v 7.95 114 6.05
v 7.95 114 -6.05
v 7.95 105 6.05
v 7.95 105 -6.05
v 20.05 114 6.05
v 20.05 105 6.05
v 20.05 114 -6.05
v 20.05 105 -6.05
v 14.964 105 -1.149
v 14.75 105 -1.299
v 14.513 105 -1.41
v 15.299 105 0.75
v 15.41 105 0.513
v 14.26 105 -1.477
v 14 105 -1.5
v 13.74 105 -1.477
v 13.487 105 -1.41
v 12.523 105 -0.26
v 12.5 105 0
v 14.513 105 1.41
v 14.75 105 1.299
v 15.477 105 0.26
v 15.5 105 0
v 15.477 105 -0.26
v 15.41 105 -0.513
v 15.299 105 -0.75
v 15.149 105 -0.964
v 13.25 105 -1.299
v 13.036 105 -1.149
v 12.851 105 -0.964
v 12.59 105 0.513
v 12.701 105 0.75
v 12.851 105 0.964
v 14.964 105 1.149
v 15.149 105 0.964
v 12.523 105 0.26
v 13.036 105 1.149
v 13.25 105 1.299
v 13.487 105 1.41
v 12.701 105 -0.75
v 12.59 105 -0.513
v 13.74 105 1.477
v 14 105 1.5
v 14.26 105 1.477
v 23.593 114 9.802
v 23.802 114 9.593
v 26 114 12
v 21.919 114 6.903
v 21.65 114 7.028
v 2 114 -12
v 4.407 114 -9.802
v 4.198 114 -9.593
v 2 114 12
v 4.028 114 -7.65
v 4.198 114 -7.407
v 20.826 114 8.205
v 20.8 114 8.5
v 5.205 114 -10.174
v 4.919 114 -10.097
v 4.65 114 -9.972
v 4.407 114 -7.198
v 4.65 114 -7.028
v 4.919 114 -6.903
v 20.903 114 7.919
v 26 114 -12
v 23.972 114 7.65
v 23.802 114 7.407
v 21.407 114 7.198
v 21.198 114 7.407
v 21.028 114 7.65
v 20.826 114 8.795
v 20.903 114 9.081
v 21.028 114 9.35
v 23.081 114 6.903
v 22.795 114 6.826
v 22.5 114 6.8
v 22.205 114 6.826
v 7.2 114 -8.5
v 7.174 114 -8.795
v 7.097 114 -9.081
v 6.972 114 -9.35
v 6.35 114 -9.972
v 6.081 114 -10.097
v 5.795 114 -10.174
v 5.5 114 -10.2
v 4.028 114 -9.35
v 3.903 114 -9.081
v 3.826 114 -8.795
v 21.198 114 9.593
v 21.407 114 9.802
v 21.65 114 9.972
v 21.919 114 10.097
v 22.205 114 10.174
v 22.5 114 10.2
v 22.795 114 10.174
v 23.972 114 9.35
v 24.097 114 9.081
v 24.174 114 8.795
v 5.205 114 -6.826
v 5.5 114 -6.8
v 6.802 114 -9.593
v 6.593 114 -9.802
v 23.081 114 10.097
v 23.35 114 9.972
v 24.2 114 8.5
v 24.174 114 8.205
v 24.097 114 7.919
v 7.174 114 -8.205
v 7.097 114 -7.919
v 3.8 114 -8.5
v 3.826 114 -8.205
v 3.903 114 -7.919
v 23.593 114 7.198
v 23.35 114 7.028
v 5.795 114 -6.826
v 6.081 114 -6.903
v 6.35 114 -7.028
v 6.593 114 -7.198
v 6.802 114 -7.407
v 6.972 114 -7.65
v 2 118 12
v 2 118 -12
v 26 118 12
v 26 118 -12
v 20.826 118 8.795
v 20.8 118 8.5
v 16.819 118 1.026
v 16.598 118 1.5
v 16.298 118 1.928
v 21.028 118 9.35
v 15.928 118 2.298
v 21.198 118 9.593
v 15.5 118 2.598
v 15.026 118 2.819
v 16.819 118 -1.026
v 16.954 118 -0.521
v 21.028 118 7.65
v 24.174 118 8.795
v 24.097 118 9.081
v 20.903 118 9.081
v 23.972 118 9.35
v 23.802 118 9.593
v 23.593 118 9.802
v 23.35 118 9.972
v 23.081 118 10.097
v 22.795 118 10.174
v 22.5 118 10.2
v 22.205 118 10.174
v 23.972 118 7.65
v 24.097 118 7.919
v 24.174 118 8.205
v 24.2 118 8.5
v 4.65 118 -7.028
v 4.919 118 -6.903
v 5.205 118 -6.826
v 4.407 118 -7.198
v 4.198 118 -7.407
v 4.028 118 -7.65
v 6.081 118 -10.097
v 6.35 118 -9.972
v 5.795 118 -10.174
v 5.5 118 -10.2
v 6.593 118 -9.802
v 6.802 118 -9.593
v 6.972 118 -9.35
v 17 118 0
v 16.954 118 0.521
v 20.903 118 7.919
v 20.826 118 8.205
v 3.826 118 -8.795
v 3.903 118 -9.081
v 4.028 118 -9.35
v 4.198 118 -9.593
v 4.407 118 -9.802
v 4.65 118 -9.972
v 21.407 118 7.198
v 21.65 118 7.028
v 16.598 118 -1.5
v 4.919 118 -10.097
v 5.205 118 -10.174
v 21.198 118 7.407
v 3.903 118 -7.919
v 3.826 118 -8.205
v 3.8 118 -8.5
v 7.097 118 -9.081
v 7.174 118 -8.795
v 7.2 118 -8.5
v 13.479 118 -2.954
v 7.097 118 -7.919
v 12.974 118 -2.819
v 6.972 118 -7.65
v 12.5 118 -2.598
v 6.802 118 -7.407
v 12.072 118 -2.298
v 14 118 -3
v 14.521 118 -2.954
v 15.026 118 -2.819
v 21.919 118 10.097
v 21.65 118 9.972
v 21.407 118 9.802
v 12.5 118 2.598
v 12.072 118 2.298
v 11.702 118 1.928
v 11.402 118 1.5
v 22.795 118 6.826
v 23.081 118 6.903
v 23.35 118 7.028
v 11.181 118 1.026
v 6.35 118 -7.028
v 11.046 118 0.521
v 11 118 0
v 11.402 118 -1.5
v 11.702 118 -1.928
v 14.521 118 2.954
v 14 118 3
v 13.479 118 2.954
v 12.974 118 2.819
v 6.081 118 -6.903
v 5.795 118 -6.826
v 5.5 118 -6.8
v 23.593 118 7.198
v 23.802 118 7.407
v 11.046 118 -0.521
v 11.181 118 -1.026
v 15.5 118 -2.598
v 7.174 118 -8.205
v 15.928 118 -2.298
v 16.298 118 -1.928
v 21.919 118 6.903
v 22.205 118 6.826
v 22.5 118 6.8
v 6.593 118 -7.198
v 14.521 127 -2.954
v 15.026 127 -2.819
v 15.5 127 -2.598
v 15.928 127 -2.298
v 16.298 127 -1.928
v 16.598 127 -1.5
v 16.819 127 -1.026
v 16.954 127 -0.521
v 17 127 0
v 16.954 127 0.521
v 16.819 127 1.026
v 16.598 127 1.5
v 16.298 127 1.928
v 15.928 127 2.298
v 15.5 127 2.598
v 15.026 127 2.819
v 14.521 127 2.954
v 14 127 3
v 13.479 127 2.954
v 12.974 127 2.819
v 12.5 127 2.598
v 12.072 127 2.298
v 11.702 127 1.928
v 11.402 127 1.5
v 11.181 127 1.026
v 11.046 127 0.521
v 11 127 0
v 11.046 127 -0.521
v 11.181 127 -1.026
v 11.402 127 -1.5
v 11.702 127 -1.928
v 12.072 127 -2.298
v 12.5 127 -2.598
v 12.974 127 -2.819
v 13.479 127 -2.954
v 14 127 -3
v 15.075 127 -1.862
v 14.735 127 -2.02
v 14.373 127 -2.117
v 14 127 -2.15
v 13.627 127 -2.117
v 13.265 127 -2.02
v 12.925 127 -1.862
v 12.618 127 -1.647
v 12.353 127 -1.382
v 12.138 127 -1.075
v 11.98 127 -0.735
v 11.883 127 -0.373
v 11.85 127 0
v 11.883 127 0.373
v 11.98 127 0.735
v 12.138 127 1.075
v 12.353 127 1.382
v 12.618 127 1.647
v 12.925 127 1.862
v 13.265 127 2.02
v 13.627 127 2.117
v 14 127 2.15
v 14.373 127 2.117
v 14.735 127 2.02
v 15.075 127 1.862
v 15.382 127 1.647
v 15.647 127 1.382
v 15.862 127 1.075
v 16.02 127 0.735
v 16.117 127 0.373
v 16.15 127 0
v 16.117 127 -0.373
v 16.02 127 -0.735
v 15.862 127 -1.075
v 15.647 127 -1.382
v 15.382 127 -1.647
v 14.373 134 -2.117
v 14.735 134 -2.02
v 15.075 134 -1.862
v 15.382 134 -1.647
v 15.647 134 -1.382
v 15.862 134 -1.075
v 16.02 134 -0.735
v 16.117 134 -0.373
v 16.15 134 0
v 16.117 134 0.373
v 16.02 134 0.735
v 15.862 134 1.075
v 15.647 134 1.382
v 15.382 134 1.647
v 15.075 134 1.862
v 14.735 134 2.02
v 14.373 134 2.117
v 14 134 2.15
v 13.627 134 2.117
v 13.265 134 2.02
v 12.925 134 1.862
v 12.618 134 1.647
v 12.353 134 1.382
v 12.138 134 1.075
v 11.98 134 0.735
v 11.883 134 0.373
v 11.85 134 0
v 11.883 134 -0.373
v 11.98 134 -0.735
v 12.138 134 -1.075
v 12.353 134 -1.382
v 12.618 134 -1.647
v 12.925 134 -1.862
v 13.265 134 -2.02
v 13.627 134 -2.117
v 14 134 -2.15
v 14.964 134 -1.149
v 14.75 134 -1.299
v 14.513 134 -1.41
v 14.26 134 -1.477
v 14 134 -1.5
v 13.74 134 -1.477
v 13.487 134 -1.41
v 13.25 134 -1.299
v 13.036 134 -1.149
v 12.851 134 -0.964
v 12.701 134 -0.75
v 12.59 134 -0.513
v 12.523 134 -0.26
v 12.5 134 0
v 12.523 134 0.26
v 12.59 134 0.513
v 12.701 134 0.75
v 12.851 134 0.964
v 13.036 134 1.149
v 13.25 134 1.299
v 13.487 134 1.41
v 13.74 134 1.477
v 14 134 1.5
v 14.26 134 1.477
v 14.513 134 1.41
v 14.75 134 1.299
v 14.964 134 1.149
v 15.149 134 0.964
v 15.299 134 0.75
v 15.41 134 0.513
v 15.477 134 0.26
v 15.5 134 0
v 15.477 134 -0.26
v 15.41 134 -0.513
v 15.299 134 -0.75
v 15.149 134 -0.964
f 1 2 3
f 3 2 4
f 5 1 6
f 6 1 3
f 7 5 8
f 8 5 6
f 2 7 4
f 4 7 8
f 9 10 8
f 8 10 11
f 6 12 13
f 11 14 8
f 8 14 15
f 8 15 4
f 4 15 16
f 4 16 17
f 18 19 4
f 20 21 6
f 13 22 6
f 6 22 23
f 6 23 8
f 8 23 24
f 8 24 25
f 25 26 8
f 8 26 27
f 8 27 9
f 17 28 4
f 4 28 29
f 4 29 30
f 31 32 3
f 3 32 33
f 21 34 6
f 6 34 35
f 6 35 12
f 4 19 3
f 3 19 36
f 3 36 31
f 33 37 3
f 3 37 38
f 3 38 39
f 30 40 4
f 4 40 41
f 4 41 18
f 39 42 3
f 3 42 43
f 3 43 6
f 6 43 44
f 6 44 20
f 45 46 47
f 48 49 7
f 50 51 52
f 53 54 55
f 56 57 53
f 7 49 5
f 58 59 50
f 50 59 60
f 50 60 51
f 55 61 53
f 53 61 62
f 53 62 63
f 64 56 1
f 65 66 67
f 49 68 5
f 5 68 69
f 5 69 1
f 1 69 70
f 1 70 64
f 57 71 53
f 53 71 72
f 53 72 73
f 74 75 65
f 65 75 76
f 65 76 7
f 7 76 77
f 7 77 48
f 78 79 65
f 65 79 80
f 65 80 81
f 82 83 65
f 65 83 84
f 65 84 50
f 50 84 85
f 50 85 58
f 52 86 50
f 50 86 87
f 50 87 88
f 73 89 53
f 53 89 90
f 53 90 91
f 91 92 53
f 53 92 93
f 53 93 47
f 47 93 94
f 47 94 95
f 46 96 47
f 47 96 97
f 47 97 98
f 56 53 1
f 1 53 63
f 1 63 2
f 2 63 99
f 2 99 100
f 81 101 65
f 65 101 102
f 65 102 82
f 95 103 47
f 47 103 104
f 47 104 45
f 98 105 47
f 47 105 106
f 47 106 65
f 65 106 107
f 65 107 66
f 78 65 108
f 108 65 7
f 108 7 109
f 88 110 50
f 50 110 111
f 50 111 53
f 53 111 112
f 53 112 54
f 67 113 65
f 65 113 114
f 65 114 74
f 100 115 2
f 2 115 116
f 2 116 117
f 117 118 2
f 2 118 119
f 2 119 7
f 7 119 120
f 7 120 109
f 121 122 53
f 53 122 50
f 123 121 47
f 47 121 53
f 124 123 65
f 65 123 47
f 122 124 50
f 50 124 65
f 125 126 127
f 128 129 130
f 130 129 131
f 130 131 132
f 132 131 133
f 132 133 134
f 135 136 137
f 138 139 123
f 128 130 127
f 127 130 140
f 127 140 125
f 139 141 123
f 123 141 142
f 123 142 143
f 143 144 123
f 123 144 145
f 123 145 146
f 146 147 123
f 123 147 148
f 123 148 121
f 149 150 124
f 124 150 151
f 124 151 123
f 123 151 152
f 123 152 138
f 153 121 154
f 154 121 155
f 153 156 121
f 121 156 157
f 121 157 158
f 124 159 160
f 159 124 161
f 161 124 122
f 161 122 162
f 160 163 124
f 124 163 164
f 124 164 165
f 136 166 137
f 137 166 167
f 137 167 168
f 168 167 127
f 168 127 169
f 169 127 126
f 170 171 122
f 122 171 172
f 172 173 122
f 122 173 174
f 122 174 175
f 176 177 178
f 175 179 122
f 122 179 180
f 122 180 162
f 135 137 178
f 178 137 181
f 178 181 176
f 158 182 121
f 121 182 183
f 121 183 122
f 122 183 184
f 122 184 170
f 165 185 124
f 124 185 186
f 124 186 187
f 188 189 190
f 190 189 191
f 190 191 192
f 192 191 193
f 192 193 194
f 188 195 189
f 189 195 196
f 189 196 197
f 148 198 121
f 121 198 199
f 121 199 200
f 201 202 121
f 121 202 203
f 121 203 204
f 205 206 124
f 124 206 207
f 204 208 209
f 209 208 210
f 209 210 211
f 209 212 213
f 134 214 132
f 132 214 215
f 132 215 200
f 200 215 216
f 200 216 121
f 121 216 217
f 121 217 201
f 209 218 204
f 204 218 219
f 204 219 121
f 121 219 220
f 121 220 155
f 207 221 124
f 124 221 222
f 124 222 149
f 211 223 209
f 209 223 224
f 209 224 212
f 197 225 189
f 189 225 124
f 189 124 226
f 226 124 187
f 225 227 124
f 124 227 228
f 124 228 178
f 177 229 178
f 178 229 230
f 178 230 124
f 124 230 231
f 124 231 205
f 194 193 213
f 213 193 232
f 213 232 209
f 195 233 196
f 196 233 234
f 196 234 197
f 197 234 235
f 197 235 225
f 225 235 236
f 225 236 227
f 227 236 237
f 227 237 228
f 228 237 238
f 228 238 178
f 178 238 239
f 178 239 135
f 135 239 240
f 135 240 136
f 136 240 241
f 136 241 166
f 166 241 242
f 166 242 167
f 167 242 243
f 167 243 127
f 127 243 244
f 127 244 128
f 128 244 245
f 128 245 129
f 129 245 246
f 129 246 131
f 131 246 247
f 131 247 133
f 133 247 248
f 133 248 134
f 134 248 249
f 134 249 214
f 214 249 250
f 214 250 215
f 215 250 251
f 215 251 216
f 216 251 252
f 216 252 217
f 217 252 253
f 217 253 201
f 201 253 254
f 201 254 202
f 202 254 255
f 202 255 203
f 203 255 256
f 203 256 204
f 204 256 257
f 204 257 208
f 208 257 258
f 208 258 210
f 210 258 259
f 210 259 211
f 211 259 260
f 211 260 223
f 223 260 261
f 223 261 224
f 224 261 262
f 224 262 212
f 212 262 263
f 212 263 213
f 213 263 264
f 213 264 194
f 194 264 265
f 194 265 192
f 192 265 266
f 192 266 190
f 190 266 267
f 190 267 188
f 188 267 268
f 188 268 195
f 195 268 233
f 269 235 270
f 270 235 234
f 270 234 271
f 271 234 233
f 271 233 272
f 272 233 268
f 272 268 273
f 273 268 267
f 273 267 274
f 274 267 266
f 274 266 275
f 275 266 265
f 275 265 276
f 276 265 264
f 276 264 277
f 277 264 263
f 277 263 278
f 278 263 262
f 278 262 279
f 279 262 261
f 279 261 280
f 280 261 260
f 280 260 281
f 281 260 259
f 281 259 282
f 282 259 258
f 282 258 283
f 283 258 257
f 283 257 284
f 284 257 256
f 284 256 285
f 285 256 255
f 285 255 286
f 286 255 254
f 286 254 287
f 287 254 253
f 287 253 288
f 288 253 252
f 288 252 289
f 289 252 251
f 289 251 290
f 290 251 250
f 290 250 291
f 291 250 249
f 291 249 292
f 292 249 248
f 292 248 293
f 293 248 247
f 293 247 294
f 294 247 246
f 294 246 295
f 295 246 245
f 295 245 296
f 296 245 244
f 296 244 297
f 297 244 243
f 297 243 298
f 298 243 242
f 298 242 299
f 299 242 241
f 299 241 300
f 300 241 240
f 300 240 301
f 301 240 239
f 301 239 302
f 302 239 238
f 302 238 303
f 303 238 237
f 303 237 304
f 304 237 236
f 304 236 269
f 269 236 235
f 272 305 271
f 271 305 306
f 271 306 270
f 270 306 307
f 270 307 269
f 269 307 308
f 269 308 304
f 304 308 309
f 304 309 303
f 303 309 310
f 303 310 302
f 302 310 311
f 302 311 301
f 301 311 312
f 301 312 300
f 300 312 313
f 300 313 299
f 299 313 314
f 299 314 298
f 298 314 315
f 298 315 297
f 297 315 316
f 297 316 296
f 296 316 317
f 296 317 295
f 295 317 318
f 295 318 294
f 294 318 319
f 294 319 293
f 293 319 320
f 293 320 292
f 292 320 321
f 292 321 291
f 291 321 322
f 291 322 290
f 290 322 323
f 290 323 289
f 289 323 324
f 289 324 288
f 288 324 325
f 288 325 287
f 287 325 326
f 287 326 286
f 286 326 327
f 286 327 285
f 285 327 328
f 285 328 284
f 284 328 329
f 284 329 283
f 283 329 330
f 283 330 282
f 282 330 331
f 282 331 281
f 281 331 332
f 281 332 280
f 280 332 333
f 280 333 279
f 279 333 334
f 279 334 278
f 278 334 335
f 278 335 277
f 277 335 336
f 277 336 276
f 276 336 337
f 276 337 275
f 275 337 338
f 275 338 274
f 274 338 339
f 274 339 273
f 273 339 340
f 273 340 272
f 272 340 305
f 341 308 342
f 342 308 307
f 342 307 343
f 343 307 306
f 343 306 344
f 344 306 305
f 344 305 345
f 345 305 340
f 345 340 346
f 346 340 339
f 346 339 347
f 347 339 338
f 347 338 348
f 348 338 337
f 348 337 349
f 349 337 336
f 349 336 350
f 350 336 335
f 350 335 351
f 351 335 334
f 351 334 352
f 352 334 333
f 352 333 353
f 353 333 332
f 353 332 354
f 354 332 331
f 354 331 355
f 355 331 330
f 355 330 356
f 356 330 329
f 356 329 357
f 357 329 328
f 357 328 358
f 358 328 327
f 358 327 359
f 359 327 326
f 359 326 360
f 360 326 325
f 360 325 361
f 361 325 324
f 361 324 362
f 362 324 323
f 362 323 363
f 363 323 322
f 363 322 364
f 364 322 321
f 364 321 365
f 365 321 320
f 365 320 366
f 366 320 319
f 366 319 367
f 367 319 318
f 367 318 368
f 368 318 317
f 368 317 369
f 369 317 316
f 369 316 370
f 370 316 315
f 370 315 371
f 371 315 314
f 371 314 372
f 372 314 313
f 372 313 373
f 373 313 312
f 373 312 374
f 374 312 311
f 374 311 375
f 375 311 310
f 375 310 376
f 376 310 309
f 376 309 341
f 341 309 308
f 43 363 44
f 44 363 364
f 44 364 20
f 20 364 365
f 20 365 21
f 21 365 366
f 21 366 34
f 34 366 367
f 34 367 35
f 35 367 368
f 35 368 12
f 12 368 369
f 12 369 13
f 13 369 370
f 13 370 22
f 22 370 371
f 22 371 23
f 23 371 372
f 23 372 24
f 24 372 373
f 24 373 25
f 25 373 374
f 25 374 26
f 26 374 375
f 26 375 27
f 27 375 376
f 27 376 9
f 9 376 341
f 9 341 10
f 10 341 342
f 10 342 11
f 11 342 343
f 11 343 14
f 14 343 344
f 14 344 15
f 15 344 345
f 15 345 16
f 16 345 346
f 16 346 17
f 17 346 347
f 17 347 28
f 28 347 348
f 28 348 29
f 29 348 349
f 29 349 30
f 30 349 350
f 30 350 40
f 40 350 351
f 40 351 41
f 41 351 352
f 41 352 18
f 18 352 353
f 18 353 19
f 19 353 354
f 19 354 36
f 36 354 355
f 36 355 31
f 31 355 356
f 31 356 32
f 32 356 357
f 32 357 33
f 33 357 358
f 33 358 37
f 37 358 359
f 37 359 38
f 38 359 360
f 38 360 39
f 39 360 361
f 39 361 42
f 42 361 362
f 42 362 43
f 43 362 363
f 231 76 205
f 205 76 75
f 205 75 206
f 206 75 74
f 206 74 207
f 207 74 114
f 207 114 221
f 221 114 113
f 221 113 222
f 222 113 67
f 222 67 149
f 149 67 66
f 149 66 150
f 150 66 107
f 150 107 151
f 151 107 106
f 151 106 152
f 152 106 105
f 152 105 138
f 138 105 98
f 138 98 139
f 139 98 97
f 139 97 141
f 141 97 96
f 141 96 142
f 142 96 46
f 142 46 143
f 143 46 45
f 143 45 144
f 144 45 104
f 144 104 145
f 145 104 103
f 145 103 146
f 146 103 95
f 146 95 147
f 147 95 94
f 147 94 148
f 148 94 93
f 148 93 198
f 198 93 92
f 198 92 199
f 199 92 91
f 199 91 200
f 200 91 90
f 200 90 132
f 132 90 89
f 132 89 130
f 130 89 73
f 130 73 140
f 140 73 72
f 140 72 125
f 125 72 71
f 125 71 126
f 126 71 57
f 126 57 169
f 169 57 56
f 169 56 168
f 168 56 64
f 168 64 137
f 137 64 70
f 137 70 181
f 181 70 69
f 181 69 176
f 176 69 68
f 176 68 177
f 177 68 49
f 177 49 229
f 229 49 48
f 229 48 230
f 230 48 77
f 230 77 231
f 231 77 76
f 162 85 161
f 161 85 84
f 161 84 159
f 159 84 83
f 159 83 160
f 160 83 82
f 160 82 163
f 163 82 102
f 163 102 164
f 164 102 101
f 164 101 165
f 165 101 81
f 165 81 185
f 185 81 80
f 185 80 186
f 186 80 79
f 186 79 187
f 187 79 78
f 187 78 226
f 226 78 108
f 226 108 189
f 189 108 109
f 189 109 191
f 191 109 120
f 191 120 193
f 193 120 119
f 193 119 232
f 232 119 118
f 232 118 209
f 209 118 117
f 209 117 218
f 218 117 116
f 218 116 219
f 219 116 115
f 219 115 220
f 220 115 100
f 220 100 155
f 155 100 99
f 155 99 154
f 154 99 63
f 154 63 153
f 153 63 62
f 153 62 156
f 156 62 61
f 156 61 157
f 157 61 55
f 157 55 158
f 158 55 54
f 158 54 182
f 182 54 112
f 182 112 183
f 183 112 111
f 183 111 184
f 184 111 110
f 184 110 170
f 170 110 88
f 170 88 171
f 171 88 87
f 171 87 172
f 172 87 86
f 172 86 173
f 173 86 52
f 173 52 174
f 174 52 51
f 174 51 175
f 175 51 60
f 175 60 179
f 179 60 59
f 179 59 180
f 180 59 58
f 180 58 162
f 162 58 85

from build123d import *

# Parameters (mm, degrees)
SPIGOT_START          = 105
SKETCH1_W             = 12.1
SKETCH1_H             = 12.1
SPIGOT_DEPTH          = 9
FLANGE_START          = 114
SKETCH2_W             = 24
SKETCH2_H             = 24
FLANGE_DEPTH          = 4
OUTLET_BARB_START     = 118
SKETCH3_R             = 3
OUTLET_BARB_DEPTH     = 9
OUTLET_BARB_TIP_START = 127
SKETCH4_R             = 2.15
OUTLET_BARB_TIP_DEPTH = 7
OUTLET_BORE_START     = 134
SKETCH5_R             = 1.5
OUTLET_BORE_DEPTH     = 29.2
SCREW_HOLES_M3_START  = 113.8
SKETCH6_R             = 1.7
SCREW_HOLES_M3_DEPTH  = 4.4


with BuildPart() as part:
    # Sketch1 → Spigot (new body)
    with BuildSketch(Plane(origin=(0, 0, 0), x_dir=(1, 0, 0), z_dir=(0, 1, 0)).offset(SPIGOT_START)):
        with Locations((14, 0)):
            Rectangle(SKETCH1_W, SKETCH1_H)
    extrude(amount=SPIGOT_DEPTH)

    # Sketch2 → Flange (add)
    with BuildSketch(Plane(origin=(0, 0, 0), x_dir=(1, 0, 0), z_dir=(0, 1, 0)).offset(FLANGE_START)):
        with Locations((14, 0)):
            Rectangle(SKETCH2_W, SKETCH2_H)
    extrude(amount=FLANGE_DEPTH)

    # Sketch3 → Outlet_Barb (add)
    with BuildSketch(Plane(origin=(0, 0, 0), x_dir=(1, 0, 0), z_dir=(0, 1, 0)).offset(OUTLET_BARB_START)):
        with Locations(Location((14, 0, 0), (0, 0, 270))):
            Circle(SKETCH3_R)
    extrude(amount=OUTLET_BARB_DEPTH)

    # Sketch4 → Outlet_Barb_Tip (add)
    with BuildSketch(Plane(origin=(0, 0, 0), x_dir=(1, 0, 0), z_dir=(0, 1, 0)).offset(OUTLET_BARB_TIP_START)):
        with Locations(Location((14, 0, 0), (0, 0, 270))):
            Circle(SKETCH4_R)
    extrude(amount=OUTLET_BARB_TIP_DEPTH)

    # Sketch5 → Outlet_Bore (cut)
    with BuildSketch(Plane(origin=(0, 0, 0), x_dir=(1, 0, 0), z_dir=(0, 1, 0)).offset(OUTLET_BORE_START)):
        with Locations(Location((14, 0, 0), (0, 0, 270))):
            Circle(SKETCH5_R)
    extrude(amount=-OUTLET_BORE_DEPTH, mode=Mode.SUBTRACT)

    # Sketch6 → Screw_Holes_M3 (cut)
    with BuildSketch(Plane(origin=(0, 0, 0), x_dir=(1, 0, 0), z_dir=(0, 1, 0)).offset(SCREW_HOLES_M3_START)):
        with Locations(Location((5.5, 8.5, 0), (0, 0, 270))):
            Circle(SKETCH6_R)
        with Locations(Location((22.5, -8.5, 0), (0, 0, 270))):
            Circle(SKETCH6_R)
    extrude(amount=SCREW_HOLES_M3_DEPTH, mode=Mode.SUBTRACT)


solid = part.part
